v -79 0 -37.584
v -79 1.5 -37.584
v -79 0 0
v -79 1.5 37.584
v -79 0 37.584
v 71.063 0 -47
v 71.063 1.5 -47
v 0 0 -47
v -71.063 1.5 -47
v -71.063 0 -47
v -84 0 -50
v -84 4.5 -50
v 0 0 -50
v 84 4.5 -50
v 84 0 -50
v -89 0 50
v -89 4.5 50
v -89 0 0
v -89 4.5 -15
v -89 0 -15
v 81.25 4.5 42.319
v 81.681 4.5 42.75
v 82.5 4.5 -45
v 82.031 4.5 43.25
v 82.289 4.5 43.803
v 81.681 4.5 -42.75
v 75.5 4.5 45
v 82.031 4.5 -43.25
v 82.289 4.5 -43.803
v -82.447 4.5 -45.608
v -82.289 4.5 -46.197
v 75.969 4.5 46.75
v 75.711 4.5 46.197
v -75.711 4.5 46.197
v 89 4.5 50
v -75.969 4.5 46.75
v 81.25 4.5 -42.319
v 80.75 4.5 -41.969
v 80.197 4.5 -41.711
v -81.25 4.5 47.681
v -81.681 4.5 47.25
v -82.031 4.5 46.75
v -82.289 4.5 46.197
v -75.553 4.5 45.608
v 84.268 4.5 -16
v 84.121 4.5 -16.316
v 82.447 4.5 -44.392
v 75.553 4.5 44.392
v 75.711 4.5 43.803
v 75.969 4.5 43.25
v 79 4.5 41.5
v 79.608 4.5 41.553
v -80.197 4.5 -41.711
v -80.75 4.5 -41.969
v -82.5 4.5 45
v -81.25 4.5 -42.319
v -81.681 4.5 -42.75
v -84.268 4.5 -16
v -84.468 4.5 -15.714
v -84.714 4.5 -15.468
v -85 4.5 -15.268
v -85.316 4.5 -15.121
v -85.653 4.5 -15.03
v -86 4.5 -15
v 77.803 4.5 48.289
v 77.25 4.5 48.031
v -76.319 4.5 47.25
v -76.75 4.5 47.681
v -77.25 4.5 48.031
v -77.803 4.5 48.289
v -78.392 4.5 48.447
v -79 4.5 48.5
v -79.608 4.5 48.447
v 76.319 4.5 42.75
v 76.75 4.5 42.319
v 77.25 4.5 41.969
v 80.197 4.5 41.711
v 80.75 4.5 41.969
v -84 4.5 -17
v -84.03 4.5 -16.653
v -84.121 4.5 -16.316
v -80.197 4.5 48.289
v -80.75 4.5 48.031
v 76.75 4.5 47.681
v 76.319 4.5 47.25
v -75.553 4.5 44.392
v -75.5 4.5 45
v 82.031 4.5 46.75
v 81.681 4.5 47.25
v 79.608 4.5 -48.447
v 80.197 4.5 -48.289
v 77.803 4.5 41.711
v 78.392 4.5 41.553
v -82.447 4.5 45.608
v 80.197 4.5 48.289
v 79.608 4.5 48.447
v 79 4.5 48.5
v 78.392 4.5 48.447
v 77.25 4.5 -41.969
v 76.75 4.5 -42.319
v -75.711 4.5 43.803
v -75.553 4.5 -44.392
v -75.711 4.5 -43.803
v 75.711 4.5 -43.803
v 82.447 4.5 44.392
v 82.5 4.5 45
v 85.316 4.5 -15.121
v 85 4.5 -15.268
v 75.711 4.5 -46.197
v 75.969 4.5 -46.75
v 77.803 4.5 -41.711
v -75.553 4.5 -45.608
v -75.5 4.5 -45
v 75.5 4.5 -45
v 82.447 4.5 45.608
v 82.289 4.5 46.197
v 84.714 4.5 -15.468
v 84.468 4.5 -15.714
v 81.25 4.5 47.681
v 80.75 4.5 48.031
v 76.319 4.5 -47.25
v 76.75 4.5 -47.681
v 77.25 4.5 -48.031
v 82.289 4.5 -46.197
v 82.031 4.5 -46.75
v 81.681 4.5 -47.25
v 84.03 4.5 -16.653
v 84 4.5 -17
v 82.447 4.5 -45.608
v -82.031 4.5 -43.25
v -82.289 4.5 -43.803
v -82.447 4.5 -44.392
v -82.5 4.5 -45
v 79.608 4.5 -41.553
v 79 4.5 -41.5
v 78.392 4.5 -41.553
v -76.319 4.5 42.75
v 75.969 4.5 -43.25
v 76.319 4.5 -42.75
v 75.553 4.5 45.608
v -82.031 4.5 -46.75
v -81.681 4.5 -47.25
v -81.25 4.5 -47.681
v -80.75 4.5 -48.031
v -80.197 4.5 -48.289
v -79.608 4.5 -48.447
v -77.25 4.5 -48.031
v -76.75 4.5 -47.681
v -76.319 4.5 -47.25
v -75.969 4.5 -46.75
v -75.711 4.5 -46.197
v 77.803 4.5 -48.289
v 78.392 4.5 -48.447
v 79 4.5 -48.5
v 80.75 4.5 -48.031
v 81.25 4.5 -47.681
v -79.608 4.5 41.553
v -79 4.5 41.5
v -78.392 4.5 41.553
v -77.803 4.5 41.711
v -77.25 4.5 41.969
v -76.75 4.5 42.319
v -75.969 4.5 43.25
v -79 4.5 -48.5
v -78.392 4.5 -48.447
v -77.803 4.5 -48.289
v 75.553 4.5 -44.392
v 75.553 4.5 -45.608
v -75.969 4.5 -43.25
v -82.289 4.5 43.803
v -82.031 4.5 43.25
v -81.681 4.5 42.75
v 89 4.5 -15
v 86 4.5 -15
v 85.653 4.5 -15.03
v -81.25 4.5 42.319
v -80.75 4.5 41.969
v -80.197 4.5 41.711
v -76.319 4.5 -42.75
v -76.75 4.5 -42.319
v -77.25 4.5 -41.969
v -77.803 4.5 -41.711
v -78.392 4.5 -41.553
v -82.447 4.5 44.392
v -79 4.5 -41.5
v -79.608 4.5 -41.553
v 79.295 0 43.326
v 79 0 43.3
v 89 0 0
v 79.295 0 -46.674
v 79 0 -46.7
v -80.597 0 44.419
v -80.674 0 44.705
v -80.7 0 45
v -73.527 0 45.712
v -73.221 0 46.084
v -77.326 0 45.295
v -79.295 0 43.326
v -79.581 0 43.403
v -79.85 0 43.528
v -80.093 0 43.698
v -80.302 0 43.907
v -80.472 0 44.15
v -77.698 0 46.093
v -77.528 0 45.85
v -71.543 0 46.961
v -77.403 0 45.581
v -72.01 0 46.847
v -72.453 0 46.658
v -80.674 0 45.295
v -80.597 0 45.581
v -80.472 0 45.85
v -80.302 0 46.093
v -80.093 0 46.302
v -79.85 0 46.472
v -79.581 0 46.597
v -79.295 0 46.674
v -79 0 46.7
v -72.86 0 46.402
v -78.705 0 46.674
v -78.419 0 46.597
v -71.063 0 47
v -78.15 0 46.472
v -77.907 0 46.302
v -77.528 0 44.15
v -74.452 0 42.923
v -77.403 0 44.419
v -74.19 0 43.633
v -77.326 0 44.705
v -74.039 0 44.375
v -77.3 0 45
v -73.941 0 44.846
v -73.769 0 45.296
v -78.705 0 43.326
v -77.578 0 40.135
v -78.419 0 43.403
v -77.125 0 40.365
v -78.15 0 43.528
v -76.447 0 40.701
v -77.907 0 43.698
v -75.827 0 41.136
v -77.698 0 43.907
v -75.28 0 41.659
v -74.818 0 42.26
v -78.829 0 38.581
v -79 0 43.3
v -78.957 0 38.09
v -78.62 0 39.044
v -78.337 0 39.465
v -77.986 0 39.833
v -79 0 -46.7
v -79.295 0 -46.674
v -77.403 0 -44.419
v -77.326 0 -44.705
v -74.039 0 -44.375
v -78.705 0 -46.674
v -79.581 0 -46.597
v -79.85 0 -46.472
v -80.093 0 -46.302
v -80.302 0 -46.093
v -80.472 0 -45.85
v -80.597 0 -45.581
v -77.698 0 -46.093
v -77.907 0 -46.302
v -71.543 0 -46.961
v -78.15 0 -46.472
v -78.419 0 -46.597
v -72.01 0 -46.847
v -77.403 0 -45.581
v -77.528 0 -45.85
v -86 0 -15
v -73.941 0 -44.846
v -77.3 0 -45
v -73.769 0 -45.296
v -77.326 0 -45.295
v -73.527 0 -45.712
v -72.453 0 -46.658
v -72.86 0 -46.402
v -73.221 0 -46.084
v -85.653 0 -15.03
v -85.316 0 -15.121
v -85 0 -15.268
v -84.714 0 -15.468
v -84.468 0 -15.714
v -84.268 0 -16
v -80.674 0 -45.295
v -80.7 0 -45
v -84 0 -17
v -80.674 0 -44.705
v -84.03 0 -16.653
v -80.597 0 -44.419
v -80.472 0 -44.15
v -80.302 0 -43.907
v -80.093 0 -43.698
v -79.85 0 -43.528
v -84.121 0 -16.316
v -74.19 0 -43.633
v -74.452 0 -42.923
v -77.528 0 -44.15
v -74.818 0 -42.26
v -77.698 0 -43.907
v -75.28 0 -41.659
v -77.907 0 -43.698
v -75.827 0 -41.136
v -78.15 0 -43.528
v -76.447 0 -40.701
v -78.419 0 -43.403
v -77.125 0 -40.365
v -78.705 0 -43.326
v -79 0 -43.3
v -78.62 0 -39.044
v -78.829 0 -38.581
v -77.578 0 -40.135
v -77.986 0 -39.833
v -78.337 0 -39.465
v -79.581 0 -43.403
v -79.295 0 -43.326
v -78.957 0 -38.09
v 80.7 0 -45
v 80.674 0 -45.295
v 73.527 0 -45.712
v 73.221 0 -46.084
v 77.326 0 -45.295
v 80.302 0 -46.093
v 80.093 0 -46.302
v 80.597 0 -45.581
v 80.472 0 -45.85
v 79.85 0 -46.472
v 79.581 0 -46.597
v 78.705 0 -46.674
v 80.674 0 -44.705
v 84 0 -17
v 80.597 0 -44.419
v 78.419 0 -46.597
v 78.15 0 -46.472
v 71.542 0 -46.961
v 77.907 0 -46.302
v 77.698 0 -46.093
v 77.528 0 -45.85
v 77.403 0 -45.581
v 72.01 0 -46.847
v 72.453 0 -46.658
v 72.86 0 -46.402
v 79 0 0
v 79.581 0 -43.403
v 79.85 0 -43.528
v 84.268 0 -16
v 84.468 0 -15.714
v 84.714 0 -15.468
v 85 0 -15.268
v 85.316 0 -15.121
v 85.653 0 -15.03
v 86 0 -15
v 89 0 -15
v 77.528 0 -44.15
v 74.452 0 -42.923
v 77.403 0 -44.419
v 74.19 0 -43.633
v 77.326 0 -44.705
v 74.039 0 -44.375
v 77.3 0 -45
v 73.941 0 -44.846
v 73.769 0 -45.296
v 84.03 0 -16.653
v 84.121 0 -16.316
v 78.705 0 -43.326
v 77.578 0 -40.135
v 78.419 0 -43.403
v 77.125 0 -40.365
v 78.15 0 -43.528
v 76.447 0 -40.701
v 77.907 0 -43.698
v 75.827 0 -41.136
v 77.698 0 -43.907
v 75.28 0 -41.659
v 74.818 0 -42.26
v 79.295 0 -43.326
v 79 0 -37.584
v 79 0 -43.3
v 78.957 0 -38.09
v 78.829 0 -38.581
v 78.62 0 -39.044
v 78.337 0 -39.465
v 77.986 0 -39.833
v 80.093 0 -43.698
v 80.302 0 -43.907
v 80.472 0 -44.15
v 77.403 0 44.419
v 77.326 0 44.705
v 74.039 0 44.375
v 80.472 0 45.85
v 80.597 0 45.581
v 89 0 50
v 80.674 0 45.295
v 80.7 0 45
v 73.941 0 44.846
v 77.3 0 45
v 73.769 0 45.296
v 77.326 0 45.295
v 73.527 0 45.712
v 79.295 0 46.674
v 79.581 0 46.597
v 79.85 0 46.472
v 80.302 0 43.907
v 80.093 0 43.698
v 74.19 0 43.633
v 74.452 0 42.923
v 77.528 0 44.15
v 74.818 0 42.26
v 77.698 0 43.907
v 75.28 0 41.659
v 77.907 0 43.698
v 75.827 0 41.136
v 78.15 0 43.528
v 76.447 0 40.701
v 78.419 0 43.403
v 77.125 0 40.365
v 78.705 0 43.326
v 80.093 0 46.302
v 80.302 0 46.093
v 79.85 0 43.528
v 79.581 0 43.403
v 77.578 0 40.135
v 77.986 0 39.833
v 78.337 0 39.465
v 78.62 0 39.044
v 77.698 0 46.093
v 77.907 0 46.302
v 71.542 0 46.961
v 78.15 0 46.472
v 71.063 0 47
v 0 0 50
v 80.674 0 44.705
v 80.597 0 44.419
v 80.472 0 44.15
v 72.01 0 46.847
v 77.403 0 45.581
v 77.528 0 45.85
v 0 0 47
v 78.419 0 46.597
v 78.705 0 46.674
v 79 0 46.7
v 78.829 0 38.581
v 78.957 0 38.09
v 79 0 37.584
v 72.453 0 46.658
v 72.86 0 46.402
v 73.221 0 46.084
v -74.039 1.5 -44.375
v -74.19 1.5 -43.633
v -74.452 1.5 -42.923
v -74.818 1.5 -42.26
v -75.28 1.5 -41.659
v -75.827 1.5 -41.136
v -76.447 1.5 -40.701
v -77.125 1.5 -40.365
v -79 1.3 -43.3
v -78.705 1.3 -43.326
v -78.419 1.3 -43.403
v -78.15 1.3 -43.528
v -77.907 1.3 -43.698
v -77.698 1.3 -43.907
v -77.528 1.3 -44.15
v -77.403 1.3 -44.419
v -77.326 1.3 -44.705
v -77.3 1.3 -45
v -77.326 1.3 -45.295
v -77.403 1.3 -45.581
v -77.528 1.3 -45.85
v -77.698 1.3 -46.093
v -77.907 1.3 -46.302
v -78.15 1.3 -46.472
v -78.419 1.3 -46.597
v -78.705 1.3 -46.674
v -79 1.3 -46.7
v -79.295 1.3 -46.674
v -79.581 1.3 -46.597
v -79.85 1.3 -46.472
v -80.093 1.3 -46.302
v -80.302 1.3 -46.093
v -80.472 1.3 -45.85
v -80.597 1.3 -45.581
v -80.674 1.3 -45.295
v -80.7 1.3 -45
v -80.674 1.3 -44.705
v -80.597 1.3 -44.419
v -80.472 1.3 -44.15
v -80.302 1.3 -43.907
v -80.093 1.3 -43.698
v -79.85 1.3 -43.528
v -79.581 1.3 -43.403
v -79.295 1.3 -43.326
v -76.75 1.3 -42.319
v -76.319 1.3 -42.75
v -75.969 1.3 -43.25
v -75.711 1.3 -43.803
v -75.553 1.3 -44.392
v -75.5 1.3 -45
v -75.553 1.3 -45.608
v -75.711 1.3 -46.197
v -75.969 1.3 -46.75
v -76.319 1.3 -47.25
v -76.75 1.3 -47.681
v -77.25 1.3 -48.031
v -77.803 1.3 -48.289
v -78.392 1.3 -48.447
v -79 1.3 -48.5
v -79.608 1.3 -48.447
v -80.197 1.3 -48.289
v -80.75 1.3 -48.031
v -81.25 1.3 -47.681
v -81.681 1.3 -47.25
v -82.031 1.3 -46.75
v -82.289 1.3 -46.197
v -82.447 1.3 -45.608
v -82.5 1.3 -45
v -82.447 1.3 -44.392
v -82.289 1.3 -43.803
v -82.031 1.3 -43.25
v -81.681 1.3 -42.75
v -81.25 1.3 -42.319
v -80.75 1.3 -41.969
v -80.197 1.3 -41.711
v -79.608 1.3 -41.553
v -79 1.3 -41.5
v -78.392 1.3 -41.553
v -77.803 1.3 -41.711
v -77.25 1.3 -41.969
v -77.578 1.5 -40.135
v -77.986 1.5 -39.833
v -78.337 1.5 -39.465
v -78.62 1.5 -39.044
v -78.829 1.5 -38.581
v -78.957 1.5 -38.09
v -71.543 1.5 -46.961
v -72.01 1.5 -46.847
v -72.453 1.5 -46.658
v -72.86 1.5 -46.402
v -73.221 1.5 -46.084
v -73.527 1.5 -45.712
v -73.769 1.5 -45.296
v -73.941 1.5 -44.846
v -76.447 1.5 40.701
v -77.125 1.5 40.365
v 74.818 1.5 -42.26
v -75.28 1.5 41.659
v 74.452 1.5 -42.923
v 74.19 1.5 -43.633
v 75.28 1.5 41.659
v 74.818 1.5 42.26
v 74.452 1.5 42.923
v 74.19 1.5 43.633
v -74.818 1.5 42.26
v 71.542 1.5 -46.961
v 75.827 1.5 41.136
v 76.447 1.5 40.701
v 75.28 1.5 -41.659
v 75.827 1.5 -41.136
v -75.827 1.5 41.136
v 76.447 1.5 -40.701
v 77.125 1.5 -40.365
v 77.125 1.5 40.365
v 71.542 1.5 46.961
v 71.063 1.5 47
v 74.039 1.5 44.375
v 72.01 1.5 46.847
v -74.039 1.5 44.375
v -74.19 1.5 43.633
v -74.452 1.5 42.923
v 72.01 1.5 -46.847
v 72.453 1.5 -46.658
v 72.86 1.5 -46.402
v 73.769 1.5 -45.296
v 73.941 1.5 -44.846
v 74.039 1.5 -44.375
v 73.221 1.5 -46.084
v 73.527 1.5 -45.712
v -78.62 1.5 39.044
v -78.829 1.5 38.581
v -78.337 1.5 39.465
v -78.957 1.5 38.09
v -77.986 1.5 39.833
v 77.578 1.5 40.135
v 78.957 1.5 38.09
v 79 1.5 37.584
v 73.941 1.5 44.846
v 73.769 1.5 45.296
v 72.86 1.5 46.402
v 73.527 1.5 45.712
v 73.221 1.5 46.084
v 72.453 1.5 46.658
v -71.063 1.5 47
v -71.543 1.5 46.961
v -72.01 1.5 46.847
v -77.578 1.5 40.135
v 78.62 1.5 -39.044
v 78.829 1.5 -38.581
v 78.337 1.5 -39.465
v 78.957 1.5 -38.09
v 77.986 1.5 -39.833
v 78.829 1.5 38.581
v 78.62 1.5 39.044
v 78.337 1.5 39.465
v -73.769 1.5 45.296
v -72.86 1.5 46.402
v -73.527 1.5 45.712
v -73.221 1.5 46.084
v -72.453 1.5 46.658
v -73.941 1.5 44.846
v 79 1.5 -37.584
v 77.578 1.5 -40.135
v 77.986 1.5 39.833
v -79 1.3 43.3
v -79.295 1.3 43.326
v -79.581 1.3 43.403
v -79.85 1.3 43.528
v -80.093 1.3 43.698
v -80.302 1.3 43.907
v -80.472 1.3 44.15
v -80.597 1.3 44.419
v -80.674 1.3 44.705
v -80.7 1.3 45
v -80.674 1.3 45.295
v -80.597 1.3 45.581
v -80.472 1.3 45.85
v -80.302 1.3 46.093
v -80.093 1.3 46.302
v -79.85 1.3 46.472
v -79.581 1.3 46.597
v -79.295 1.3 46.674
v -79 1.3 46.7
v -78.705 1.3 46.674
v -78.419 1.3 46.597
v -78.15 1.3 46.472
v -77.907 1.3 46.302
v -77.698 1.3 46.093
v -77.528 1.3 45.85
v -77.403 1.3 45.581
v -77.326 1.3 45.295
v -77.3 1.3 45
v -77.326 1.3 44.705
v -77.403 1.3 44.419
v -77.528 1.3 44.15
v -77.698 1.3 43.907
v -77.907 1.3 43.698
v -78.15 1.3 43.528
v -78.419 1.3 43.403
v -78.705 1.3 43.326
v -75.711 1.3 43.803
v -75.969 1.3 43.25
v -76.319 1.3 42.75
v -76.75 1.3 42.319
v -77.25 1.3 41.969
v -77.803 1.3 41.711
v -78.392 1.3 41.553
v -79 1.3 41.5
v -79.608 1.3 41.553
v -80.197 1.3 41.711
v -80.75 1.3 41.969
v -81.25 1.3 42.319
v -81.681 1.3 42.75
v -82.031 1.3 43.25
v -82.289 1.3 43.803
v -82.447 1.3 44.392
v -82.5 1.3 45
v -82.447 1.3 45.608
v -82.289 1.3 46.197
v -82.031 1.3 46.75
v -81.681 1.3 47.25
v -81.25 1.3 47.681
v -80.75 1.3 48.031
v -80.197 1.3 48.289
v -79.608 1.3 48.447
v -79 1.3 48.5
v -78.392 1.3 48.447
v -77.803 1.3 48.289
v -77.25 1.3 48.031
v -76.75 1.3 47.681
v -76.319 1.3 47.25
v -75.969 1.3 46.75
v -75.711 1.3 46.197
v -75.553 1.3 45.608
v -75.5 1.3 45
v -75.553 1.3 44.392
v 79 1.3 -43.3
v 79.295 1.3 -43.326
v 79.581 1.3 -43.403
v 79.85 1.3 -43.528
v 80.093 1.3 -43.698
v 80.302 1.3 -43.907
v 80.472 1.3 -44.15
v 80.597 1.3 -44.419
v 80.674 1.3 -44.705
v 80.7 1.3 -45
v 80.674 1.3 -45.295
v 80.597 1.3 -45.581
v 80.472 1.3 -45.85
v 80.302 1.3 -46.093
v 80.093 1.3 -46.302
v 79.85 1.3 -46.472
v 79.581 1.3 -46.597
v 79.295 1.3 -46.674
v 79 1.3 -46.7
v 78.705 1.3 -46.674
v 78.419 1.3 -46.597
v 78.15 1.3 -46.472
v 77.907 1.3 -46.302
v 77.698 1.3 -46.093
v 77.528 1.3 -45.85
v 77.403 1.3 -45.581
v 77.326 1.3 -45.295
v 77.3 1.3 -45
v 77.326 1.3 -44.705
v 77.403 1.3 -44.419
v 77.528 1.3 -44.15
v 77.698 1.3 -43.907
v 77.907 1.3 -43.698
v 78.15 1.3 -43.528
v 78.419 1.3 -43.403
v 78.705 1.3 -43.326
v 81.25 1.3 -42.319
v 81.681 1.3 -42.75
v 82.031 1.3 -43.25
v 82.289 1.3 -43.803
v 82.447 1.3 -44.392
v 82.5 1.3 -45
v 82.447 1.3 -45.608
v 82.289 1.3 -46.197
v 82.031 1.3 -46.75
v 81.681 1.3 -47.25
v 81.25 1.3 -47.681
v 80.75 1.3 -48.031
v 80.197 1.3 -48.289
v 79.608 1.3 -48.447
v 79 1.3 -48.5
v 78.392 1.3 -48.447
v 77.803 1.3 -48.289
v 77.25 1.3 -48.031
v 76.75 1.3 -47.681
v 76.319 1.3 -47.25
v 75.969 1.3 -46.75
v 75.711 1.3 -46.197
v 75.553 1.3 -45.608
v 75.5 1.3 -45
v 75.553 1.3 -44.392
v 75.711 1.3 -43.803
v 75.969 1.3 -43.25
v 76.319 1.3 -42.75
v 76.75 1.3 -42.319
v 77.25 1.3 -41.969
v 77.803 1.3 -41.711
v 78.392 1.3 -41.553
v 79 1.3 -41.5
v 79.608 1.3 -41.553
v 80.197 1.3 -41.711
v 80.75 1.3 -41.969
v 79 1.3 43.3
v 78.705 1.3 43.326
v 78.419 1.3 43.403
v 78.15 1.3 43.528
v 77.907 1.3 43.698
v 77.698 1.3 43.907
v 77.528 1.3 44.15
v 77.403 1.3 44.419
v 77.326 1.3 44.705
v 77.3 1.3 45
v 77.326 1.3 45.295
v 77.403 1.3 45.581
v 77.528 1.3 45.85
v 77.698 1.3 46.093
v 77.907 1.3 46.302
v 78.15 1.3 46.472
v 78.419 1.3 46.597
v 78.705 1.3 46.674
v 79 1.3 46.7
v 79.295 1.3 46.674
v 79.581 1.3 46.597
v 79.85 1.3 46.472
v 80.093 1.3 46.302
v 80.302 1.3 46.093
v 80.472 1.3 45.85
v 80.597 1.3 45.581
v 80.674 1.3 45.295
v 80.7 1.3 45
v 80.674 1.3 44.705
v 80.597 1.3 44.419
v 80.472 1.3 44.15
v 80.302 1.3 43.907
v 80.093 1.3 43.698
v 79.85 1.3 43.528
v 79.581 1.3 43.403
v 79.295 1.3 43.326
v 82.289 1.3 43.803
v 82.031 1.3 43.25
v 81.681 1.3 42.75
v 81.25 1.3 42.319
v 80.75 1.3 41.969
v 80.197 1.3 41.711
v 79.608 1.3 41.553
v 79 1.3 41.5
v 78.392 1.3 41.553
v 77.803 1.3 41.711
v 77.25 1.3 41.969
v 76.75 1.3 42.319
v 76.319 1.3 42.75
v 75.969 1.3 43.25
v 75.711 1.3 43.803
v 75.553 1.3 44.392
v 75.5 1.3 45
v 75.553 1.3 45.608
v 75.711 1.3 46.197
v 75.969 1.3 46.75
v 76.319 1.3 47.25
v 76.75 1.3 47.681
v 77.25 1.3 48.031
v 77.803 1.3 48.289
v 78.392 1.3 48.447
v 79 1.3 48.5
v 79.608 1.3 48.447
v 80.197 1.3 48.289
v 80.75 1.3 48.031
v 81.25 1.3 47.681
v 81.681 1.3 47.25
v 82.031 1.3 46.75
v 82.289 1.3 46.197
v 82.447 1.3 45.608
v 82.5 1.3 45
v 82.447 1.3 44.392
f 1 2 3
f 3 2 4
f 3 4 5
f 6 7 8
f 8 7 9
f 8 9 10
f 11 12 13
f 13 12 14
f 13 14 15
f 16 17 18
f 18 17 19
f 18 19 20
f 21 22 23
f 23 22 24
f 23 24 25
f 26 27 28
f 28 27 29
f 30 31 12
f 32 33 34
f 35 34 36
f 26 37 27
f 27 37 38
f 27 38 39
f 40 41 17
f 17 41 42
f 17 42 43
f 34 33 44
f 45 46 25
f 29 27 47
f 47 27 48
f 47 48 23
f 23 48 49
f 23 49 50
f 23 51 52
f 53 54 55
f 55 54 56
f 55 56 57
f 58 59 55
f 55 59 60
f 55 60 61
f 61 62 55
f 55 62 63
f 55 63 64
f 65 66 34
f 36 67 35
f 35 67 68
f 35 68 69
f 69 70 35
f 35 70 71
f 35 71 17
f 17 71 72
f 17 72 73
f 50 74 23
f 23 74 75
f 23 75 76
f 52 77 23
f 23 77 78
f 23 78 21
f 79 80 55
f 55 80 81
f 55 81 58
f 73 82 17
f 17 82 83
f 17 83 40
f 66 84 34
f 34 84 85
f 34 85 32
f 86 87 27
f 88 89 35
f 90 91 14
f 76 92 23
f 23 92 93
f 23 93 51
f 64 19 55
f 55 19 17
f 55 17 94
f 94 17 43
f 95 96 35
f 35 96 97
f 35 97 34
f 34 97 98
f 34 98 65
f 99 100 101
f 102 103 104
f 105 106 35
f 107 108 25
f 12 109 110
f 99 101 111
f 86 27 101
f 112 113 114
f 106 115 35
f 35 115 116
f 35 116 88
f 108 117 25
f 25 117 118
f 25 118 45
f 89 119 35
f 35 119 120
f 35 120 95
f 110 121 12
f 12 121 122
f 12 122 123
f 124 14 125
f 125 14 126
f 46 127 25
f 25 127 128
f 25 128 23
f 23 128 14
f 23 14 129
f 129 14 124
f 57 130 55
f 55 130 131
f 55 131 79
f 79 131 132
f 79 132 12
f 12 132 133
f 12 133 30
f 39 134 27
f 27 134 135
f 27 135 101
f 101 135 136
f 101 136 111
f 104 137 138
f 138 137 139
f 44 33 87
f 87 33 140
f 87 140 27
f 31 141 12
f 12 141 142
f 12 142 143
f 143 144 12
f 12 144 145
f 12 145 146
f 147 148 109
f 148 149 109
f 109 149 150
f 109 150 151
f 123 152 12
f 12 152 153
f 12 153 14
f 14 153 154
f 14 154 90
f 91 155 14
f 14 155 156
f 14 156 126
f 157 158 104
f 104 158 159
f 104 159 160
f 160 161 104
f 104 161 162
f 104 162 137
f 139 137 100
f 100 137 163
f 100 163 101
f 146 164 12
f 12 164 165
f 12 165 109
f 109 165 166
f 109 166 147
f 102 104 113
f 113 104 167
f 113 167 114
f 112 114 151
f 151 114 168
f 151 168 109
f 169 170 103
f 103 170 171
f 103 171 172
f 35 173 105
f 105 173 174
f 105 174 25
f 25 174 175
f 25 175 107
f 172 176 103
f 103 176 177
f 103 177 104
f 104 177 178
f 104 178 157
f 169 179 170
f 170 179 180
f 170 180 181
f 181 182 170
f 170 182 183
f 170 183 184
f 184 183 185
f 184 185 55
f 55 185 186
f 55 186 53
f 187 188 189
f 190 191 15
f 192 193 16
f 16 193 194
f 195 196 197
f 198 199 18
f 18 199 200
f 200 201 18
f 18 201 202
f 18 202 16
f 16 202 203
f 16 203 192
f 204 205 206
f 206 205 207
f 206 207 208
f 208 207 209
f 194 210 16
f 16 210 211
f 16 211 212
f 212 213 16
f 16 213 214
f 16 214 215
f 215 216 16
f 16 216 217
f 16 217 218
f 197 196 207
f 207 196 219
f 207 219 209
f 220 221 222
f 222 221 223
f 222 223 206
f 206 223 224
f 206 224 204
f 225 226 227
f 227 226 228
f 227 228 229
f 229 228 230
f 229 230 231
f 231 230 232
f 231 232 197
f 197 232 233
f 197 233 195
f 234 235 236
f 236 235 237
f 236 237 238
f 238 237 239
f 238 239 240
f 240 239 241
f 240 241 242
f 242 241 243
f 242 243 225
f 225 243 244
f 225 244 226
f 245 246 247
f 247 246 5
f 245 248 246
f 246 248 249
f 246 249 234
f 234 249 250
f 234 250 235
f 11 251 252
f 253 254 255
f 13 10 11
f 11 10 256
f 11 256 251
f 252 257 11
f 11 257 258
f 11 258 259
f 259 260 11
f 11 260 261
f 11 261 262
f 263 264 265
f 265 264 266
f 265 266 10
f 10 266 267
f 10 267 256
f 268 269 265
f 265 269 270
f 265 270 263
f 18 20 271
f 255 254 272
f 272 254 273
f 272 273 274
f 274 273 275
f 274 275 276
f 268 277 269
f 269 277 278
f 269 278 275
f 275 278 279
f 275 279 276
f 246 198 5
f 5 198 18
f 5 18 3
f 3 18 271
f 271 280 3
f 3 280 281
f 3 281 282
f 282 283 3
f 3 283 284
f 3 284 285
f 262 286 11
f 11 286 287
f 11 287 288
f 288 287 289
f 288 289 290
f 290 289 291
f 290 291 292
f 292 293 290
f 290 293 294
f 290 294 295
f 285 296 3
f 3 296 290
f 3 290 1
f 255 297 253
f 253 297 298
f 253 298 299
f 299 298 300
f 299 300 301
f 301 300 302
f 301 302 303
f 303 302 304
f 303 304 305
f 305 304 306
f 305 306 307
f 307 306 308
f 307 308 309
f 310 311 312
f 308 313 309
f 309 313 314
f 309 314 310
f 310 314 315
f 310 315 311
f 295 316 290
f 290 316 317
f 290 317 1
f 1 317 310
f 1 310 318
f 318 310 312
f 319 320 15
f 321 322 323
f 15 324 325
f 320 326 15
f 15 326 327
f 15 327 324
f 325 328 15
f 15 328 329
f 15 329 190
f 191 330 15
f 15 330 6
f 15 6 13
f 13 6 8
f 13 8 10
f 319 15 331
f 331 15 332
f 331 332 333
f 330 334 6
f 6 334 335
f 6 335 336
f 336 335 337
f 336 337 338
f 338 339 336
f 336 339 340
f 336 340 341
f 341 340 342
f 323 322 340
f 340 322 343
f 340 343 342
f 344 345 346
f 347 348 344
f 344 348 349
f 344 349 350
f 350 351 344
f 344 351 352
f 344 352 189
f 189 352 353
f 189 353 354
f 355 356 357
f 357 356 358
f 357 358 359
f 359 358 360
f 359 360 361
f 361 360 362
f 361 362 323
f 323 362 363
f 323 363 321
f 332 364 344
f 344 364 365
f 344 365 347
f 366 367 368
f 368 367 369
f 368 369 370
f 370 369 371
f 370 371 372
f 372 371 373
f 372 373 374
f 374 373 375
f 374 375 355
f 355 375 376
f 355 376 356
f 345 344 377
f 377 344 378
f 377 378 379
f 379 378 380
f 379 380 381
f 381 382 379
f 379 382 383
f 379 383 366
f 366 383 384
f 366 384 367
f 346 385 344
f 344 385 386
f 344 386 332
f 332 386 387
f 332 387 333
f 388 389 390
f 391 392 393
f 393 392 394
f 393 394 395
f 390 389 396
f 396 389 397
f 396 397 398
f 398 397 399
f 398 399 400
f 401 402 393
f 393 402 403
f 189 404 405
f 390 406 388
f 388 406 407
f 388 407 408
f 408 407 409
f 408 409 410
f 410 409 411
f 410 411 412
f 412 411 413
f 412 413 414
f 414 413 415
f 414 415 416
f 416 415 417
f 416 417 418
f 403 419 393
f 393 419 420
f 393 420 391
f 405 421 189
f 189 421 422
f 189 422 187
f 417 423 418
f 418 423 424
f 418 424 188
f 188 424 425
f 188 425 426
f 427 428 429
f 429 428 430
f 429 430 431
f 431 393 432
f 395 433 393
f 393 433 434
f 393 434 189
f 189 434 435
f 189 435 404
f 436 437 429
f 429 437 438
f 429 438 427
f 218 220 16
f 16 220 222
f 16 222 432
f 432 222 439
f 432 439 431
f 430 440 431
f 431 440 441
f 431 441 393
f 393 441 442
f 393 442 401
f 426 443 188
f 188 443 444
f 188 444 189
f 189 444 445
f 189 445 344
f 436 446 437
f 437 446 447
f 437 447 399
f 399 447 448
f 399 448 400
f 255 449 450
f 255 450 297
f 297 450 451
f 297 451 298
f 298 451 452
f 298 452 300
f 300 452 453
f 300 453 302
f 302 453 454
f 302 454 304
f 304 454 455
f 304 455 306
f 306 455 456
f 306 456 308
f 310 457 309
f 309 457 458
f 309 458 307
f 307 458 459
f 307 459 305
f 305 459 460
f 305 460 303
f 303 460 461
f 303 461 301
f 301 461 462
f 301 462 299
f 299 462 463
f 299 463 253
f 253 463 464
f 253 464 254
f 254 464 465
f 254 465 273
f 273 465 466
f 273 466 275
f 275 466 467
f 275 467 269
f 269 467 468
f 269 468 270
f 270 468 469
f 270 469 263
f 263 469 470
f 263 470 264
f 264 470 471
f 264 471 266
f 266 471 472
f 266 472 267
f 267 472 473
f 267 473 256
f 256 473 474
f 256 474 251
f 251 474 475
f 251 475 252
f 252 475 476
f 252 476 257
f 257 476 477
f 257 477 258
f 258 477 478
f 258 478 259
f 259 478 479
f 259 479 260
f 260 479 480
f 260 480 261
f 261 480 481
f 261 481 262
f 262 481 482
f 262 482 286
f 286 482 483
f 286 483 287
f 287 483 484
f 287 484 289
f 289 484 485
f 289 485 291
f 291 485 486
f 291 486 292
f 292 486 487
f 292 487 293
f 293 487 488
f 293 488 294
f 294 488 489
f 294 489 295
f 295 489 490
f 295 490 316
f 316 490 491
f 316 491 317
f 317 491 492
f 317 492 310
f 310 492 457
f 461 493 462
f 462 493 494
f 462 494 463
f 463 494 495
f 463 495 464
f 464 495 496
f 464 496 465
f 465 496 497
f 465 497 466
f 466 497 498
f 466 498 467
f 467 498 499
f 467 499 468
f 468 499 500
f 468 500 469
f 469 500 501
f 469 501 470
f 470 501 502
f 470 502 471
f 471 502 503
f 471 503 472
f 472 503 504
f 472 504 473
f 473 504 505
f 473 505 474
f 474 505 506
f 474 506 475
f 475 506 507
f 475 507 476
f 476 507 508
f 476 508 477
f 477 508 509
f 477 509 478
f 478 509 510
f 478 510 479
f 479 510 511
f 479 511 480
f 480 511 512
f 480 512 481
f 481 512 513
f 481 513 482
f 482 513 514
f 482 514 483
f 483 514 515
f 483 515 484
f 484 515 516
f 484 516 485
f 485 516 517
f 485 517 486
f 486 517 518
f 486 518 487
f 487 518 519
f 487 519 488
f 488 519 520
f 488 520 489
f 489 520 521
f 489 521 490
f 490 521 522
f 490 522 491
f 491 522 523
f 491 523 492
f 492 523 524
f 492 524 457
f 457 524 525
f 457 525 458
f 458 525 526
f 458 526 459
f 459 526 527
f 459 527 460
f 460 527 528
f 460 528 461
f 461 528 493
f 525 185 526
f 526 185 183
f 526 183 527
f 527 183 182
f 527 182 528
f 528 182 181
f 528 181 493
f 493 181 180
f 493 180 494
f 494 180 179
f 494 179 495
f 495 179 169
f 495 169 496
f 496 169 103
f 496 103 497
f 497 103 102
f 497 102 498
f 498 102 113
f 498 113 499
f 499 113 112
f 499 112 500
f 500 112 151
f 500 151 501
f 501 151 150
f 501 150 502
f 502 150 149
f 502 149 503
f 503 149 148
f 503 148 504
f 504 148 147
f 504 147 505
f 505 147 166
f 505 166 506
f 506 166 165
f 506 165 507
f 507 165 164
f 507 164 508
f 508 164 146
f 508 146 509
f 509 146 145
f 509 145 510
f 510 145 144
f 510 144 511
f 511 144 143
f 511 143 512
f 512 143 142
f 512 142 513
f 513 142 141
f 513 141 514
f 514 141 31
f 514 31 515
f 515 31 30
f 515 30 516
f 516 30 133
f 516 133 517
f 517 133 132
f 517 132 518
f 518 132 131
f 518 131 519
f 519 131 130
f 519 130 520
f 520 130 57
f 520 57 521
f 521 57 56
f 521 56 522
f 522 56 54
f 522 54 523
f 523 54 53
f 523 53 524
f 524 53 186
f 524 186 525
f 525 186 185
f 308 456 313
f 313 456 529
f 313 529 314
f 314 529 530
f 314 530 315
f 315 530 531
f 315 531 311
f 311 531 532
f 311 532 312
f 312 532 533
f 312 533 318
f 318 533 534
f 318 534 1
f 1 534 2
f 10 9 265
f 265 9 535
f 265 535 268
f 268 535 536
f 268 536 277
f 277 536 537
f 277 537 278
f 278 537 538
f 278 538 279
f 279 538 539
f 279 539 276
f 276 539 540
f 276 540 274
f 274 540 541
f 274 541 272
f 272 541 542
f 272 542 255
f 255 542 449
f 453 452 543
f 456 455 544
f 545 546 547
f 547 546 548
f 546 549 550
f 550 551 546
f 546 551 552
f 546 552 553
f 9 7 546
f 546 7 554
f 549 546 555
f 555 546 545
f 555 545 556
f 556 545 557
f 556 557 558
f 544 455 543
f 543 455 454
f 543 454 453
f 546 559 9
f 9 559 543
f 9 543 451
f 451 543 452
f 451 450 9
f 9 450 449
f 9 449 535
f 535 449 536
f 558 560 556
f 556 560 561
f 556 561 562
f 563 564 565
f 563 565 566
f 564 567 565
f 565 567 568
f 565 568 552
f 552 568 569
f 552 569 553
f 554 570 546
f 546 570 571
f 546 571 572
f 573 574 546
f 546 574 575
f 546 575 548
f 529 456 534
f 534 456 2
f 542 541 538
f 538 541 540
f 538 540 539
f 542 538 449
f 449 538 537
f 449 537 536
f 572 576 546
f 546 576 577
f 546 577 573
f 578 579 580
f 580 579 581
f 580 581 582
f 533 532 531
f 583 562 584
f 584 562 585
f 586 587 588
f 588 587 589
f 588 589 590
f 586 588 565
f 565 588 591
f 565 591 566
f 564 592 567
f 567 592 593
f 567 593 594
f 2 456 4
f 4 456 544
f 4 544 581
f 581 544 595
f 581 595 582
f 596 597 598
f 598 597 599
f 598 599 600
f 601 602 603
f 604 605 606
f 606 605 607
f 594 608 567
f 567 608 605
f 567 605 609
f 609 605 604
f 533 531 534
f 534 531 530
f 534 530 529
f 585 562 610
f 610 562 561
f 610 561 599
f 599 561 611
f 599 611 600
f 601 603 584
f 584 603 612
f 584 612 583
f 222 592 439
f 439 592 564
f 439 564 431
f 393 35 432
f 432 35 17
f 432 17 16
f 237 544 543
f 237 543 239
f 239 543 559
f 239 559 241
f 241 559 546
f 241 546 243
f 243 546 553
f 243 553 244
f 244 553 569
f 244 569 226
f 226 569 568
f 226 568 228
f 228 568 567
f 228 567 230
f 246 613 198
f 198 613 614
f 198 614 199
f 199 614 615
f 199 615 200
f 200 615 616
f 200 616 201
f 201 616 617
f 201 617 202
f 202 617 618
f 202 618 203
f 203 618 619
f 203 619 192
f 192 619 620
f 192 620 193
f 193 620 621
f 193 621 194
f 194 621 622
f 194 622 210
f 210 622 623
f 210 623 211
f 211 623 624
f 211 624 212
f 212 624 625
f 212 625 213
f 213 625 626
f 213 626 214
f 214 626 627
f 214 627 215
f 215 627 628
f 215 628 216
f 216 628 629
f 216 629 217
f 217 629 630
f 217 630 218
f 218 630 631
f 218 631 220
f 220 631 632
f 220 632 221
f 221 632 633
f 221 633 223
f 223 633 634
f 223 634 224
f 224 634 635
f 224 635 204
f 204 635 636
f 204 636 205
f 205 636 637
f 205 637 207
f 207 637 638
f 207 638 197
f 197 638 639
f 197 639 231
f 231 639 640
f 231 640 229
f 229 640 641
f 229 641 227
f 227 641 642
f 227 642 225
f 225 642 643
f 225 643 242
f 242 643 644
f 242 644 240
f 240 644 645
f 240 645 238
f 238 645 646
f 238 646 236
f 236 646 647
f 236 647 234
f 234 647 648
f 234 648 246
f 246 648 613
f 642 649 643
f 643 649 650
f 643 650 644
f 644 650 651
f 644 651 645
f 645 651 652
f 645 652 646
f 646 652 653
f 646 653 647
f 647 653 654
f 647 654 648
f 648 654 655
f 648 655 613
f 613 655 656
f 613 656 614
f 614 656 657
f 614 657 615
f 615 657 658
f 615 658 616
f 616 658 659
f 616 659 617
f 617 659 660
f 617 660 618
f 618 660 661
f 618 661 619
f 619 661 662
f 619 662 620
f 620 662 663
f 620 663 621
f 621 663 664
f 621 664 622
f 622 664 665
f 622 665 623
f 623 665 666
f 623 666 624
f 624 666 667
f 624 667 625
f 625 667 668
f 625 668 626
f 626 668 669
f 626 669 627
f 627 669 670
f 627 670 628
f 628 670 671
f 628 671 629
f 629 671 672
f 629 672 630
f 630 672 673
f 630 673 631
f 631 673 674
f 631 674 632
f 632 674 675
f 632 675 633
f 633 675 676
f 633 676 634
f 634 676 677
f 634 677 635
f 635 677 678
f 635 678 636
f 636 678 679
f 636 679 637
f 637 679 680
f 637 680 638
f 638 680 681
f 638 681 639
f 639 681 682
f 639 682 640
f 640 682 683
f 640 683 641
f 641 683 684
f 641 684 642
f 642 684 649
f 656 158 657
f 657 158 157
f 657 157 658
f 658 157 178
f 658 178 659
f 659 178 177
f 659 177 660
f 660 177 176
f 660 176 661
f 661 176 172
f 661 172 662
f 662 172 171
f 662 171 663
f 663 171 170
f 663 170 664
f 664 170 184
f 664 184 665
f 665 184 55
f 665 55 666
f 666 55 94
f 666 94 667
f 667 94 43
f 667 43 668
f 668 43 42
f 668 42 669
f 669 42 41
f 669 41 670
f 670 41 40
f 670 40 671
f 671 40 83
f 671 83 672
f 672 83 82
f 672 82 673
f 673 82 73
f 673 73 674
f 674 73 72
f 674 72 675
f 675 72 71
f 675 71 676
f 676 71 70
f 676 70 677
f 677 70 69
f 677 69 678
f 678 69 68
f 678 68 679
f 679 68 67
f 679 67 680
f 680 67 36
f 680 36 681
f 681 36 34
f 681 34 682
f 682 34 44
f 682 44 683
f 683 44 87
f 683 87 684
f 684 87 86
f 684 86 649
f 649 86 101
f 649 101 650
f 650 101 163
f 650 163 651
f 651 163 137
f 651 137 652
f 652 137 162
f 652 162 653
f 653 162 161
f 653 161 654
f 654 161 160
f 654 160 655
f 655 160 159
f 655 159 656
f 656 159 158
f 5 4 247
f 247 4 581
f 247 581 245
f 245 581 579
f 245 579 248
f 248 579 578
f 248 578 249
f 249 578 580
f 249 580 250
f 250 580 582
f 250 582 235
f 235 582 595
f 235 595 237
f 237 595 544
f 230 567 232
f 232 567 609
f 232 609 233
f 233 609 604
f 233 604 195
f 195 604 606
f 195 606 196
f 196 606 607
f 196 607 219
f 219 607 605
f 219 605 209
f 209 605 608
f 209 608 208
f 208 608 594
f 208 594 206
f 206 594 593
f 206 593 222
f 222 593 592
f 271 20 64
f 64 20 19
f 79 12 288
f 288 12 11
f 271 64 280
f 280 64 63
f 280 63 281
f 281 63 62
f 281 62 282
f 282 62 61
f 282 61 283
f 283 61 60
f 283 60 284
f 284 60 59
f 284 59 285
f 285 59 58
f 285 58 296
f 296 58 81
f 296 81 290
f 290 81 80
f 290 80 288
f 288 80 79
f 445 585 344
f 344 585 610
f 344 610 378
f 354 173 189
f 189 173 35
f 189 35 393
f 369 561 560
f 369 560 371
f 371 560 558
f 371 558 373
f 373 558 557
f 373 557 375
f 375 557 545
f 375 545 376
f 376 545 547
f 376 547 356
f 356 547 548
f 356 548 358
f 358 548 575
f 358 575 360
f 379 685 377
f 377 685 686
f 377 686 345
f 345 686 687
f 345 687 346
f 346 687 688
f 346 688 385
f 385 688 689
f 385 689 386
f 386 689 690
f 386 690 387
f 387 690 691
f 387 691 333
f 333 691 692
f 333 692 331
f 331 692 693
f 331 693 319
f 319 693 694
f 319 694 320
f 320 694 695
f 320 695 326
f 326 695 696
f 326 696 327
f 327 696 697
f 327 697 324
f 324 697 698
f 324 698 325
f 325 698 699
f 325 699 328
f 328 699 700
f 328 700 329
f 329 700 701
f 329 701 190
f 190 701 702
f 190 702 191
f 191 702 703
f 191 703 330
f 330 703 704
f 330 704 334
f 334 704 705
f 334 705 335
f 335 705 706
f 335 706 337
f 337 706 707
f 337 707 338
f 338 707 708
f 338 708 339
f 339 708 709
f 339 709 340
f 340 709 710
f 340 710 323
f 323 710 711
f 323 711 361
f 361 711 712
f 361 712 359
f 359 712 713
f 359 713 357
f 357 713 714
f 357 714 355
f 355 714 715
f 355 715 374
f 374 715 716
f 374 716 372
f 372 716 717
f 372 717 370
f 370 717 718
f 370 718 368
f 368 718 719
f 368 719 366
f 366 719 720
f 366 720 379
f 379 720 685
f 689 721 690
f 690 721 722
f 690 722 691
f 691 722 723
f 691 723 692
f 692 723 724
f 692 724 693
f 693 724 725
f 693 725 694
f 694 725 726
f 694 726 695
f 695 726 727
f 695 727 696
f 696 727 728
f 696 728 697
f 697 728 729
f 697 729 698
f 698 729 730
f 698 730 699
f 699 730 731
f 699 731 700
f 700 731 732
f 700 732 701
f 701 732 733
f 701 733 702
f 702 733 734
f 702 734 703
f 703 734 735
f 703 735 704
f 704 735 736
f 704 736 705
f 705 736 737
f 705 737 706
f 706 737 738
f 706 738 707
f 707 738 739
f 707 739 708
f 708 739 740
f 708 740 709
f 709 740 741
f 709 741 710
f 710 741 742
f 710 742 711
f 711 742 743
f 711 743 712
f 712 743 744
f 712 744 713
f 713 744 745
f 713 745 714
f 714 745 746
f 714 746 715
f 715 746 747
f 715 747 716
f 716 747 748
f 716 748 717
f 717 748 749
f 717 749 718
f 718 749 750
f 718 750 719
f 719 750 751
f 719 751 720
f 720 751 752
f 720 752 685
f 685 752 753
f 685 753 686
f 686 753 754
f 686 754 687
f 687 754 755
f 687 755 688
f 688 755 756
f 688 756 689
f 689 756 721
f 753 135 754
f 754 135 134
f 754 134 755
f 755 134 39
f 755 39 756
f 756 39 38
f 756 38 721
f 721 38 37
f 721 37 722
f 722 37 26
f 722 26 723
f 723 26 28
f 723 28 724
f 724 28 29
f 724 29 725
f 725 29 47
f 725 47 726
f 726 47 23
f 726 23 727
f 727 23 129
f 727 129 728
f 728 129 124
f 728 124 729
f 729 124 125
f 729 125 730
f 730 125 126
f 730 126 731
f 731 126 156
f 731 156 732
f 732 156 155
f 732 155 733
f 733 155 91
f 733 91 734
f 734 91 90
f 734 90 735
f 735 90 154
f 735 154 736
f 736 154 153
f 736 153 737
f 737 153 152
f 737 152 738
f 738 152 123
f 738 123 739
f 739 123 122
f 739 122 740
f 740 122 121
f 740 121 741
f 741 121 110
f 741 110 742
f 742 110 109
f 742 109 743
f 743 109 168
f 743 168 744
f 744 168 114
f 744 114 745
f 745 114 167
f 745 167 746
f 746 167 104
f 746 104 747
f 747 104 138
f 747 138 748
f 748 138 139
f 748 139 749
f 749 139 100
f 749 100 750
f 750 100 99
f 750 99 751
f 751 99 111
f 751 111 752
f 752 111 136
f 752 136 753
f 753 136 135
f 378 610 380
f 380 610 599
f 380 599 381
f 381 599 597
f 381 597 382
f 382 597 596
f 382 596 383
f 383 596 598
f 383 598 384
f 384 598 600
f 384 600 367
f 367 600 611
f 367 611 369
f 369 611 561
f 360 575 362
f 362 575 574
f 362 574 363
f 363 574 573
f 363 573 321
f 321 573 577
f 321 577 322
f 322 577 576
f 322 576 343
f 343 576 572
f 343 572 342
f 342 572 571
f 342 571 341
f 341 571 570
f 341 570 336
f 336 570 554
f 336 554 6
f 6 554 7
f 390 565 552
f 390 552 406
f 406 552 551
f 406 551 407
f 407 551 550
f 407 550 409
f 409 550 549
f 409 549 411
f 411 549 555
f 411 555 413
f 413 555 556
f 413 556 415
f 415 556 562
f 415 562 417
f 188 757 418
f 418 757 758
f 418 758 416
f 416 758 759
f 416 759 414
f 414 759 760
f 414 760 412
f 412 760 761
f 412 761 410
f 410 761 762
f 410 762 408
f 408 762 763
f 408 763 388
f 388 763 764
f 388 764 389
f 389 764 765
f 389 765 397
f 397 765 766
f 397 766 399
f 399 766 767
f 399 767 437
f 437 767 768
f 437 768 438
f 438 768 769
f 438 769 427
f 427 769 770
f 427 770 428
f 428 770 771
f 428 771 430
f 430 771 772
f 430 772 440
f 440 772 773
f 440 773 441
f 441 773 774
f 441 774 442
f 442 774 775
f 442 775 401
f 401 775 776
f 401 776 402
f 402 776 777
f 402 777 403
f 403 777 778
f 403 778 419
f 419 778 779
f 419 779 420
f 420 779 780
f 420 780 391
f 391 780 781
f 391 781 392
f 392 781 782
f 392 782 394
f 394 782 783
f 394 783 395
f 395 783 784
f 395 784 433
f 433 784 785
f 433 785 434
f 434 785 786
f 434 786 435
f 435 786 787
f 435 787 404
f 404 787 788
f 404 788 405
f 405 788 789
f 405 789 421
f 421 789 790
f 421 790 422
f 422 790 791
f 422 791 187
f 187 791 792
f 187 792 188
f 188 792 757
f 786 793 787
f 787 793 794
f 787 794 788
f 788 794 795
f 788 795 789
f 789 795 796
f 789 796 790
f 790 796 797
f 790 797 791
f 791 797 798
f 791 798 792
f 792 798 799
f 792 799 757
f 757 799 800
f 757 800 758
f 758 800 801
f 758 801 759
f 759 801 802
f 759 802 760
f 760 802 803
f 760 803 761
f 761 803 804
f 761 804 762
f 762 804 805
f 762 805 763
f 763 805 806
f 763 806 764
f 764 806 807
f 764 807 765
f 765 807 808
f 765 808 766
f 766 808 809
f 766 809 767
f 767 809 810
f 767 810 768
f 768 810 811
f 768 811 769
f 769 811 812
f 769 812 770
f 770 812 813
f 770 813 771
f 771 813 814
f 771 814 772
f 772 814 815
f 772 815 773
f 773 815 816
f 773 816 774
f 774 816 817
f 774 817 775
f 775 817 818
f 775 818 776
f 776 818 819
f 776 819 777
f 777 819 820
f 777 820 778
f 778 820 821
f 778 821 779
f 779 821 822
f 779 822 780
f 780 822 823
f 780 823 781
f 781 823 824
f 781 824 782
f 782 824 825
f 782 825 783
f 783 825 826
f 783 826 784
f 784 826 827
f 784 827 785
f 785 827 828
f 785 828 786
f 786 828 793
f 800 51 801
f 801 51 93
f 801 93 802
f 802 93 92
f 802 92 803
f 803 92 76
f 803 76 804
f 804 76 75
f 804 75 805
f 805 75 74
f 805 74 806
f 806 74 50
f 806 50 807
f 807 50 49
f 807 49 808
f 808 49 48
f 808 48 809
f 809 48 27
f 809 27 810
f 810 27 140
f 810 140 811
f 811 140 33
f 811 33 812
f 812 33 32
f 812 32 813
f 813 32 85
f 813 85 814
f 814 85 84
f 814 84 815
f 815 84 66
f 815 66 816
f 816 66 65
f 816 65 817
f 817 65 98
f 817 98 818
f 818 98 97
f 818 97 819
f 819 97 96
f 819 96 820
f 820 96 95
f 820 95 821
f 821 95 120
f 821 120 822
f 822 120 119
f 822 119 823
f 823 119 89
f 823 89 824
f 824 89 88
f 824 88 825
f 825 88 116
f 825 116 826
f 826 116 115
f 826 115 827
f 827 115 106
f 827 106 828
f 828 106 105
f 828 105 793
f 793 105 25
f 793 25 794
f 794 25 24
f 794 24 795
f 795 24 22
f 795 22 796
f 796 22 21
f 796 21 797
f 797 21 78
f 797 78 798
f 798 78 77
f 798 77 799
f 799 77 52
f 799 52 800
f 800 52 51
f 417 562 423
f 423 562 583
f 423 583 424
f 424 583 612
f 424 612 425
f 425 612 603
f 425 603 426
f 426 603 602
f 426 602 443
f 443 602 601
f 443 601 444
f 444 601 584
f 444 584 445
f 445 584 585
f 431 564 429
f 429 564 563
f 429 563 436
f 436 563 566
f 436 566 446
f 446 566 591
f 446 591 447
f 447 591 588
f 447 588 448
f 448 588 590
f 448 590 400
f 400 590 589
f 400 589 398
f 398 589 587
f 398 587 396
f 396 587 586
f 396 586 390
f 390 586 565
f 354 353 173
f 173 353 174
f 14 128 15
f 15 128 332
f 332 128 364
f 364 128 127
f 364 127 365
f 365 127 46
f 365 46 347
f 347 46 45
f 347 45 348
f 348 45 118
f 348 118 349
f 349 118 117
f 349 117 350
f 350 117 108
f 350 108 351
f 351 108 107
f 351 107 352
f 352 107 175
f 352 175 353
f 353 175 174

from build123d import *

# Parameters (mm, degrees)
SKIZZE1_W                                            = 89
SKIZZE1_H                                            = 50
AUFSATZ_LINEAR_AUSTRAGEN1_DEPTH                      = 4.5
SKIZZE3_W                                            = 16
SKIZZE3_H                                            = 12
SCHNITT_LINEAR_AUSTRAGEN2_DEPTH                      = 5.5
VERRUNDUNG1_R                                        = 2
LINEARES_MUSTER1_COUNT                               = 3
LINEARES_MUSTER1_PITCH                               = 16
LINEARES_MUSTER1_COUNT_DIR2                          = 4
LINEARES_MUSTER1_PITCH_DIR2                          = 20
VERRUNDUNG1_OF_LINEARES_MUSTER1_R                    = 2
SKIZZE2_R                                            = 5
AUFSATZ_LINEAR_AUSTRAGEN2_DEPTH                      = 4.5
STIRNSENKUNG_F_R_M3_FLACHKOPFSCHRAUBE_MI_D           = 3.4
STIRNSENKUNG_F_R_M3_FLACHKOPFSCHRAUBE_MI_CBORE_D     = 7
STIRNSENKUNG_F_R_M3_FLACHKOPFSCHRAUBE_MI_CBORE_DEPTH = 3.2
VERRUNDUNG3_R                                        = 3
SCHNITT_LINEAR_AUSTRAGEN3_DEPTH                      = 1.5
AUFSATZ_LINEAR_AUSTRAGEN3_DEPTH                      = 3
SKIZZE8_W                                            = 10
SKIZZE8_H                                            = 35
SCHNITT_LINEAR_AUSTRAGEN4_DEPTH                      = 5.5
VERRUNDUNG4_R                                        = 2


with BuildPart() as part:
    # Skizze1 → Aufsatz-Linear austragen1 (new body)
    with BuildSketch(Plane(origin=(0, 0, 0), x_dir=(1, 0, 0), z_dir=(0, 1, 0))):
        with Locations((-44.5, 25)):
            Rectangle(SKIZZE1_W, SKIZZE1_H)
    extrude(amount=AUFSATZ_LINEAR_AUSTRAGEN1_DEPTH)

    # Skizze3 → Schnitt-Linear austragen2 (cut, through all)
    with BuildSketch(Plane(origin=(0, 4.5, 0), x_dir=(1, 0, 0), z_dir=(0, 1, 0))):
        with Locations((-11, 9)):
            Rectangle(SKIZZE3_W, SKIZZE3_H)
    schnitt_linear_austragen2 = extrude(amount=-SCHNITT_LINEAR_AUSTRAGEN2_DEPTH, mode=Mode.SUBTRACT)

    # Verrundung1
    verrundung1_edges = [part.edges().sort_by_distance(p)[0] for p in [
        (-3, 2.25, -15),
        (-3, 2.25, -3),
        (-19, 2.25, -3),
        (-19, 2.25, -15),
    ]]
    fillet(verrundung1_edges, radius=VERRUNDUNG1_R)

    # Lineares Muster1: Schnitt-Linear austragen2 3 × 4
    with Locations(*[(-j * LINEARES_MUSTER1_PITCH_DIR2, 0, -i * LINEARES_MUSTER1_PITCH) for i in range(LINEARES_MUSTER1_COUNT) for j in range(LINEARES_MUSTER1_COUNT_DIR2) if (i, j) != (0, 0)]):
        add(schnitt_linear_austragen2, mode=Mode.SUBTRACT)

    # Verrundung1 of Lineares Muster1
    verrundung1_of_lineares_muster1_edges = [part.edges().sort_by_distance(p)[0] for p in [
        (-23, 2.25, -15),
        (-23, 2.25, -3),
        (-39, 2.25, -3),
        (-39, 2.25, -15),
        (-43, 2.25, -15),
        (-43, 2.25, -3),
        (-59, 2.25, -3),
        (-59, 2.25, -15),
        (-63, 2.25, -15),
        (-63, 2.25, -3),
        (-79, 2.25, -3),
        (-79, 2.25, -15),
        (-3, 2.25, -31),
        (-3, 2.25, -19),
        (-19, 2.25, -19),
        (-19, 2.25, -31),
        (-23, 2.25, -31),
        (-23, 2.25, -19),
        (-39, 2.25, -19),
        (-39, 2.25, -31),
        (-43, 2.25, -31),
        (-43, 2.25, -19),
        (-59, 2.25, -19),
        (-59, 2.25, -31),
        (-63, 2.25, -31),
        (-63, 2.25, -19),
        (-79, 2.25, -19),
        (-79, 2.25, -31),
        (-3, 2.25, -47),
        (-3, 2.25, -35),
        (-19, 2.25, -35),
        (-19, 2.25, -47),
        (-23, 2.25, -47),
        (-23, 2.25, -35),
        (-39, 2.25, -35),
        (-39, 2.25, -47),
        (-43, 2.25, -47),
        (-43, 2.25, -35),
        (-59, 2.25, -35),
        (-59, 2.25, -47),
        (-63, 2.25, -47),
        (-63, 2.25, -35),
        (-79, 2.25, -35),
        (-79, 2.25, -47),
    ]]
    fillet(verrundung1_of_lineares_muster1_edges, radius=VERRUNDUNG1_OF_LINEARES_MUSTER1_R)

    # Skizze2 → Aufsatz-Linear austragen2 (add)
    with BuildSketch(Plane(origin=(0, 4.5, 0), x_dir=(1, 0, 0), z_dir=(0, 1, 0))):
        with Locations((-79, 45)):
            Circle(SKIZZE2_R)
    extrude(amount=-AUFSATZ_LINEAR_AUSTRAGEN2_DEPTH)

    # Stirnsenkung für M3 Flachkopfschraube mit Schlitz1 (through all)
    with Locations(Plane(origin=(0, 4.5, 0), x_dir=(1, 0, 0), z_dir=(0, 1, 0))):
        with Locations((-79, 45)):
            CounterBoreHole(STIRNSENKUNG_F_R_M3_FLACHKOPFSCHRAUBE_MI_D / 2, STIRNSENKUNG_F_R_M3_FLACHKOPFSCHRAUBE_MI_CBORE_D / 2, STIRNSENKUNG_F_R_M3_FLACHKOPFSCHRAUBE_MI_CBORE_DEPTH)

    # Verrundung3
    verrundung3_edges = [part.edges().sort_by_distance(p)[0] for p in [
        (-74.417424305, 2.25, -47),
        (-79, 2.25, -40),
    ]]
    fillet(verrundung3_edges, radius=VERRUNDUNG3_R)

    # Skizze6 → Schnitt-Linear austragen3 (cut)
    with BuildSketch(Plane.XZ):
        Polygon((0, 0), (-79, 0), (-79, -37), (-71.062746067, -37), (-71.062746067, -47), (0, -47), align=None)
    extrude(amount=-SCHNITT_LINEAR_AUSTRAGEN3_DEPTH, mode=Mode.SUBTRACT)

    # Skizze7 → Aufsatz-Linear austragen3 (add)
    with BuildSketch(Plane.XZ.offset(-1.5)):
        with BuildLine():
            Line((-79, 0), (0, 0))
            Line((0, 0), (0, -47))
            Line((0, -47), (-71.062746067, -47))
            ThreePointArc((-71.062746067, -47), (-73.04705955, -46.25), (-74.039216292, -44.375))
            ThreePointArc((-74.039216292, -44.375), (-75.037392467, -41.950780175), (-77.125, -40.364875946))
            ThreePointArc((-77.125, -40.364875946), (-78.487468593, -39.260852496), (-79, -37.583801513))
            Line((-79, -37.583801513), (-79, 0))
        make_face()
    extrude(amount=-AUFSATZ_LINEAR_AUSTRAGEN3_DEPTH)

    # Spiegeln1: part across plane


with BuildPart() as part_1:
    add(part.part)
    add(part.part.mirror(Plane(origin=(0, 4.5, 0), x_dir=(1, 0, 0), z_dir=(0, 0, -1))))

    # Skizze8 → Schnitt-Linear austragen4 (cut, through all)
    with BuildSketch(Plane.XZ):
        with Locations((-89, -32.5)):
            Rectangle(SKIZZE8_W, SKIZZE8_H)
    extrude(amount=-SCHNITT_LINEAR_AUSTRAGEN4_DEPTH, mode=Mode.SUBTRACT)

    # Verrundung4
    verrundung4_edges = [part_1.edges().sort_by_distance(p)[0] for p in [
        (-84, 2.25, -15),
    ]]
    fillet(verrundung4_edges, radius=VERRUNDUNG4_R)

    # Spiegeln2: part across plane


with BuildPart() as part_2:
    add(part_1.part)
    add(part_1.part.mirror(Plane(origin=(0, 4.5, 0), x_dir=(0, 0, 1), z_dir=(-1, 0, 0))))


solid = part_2.part
